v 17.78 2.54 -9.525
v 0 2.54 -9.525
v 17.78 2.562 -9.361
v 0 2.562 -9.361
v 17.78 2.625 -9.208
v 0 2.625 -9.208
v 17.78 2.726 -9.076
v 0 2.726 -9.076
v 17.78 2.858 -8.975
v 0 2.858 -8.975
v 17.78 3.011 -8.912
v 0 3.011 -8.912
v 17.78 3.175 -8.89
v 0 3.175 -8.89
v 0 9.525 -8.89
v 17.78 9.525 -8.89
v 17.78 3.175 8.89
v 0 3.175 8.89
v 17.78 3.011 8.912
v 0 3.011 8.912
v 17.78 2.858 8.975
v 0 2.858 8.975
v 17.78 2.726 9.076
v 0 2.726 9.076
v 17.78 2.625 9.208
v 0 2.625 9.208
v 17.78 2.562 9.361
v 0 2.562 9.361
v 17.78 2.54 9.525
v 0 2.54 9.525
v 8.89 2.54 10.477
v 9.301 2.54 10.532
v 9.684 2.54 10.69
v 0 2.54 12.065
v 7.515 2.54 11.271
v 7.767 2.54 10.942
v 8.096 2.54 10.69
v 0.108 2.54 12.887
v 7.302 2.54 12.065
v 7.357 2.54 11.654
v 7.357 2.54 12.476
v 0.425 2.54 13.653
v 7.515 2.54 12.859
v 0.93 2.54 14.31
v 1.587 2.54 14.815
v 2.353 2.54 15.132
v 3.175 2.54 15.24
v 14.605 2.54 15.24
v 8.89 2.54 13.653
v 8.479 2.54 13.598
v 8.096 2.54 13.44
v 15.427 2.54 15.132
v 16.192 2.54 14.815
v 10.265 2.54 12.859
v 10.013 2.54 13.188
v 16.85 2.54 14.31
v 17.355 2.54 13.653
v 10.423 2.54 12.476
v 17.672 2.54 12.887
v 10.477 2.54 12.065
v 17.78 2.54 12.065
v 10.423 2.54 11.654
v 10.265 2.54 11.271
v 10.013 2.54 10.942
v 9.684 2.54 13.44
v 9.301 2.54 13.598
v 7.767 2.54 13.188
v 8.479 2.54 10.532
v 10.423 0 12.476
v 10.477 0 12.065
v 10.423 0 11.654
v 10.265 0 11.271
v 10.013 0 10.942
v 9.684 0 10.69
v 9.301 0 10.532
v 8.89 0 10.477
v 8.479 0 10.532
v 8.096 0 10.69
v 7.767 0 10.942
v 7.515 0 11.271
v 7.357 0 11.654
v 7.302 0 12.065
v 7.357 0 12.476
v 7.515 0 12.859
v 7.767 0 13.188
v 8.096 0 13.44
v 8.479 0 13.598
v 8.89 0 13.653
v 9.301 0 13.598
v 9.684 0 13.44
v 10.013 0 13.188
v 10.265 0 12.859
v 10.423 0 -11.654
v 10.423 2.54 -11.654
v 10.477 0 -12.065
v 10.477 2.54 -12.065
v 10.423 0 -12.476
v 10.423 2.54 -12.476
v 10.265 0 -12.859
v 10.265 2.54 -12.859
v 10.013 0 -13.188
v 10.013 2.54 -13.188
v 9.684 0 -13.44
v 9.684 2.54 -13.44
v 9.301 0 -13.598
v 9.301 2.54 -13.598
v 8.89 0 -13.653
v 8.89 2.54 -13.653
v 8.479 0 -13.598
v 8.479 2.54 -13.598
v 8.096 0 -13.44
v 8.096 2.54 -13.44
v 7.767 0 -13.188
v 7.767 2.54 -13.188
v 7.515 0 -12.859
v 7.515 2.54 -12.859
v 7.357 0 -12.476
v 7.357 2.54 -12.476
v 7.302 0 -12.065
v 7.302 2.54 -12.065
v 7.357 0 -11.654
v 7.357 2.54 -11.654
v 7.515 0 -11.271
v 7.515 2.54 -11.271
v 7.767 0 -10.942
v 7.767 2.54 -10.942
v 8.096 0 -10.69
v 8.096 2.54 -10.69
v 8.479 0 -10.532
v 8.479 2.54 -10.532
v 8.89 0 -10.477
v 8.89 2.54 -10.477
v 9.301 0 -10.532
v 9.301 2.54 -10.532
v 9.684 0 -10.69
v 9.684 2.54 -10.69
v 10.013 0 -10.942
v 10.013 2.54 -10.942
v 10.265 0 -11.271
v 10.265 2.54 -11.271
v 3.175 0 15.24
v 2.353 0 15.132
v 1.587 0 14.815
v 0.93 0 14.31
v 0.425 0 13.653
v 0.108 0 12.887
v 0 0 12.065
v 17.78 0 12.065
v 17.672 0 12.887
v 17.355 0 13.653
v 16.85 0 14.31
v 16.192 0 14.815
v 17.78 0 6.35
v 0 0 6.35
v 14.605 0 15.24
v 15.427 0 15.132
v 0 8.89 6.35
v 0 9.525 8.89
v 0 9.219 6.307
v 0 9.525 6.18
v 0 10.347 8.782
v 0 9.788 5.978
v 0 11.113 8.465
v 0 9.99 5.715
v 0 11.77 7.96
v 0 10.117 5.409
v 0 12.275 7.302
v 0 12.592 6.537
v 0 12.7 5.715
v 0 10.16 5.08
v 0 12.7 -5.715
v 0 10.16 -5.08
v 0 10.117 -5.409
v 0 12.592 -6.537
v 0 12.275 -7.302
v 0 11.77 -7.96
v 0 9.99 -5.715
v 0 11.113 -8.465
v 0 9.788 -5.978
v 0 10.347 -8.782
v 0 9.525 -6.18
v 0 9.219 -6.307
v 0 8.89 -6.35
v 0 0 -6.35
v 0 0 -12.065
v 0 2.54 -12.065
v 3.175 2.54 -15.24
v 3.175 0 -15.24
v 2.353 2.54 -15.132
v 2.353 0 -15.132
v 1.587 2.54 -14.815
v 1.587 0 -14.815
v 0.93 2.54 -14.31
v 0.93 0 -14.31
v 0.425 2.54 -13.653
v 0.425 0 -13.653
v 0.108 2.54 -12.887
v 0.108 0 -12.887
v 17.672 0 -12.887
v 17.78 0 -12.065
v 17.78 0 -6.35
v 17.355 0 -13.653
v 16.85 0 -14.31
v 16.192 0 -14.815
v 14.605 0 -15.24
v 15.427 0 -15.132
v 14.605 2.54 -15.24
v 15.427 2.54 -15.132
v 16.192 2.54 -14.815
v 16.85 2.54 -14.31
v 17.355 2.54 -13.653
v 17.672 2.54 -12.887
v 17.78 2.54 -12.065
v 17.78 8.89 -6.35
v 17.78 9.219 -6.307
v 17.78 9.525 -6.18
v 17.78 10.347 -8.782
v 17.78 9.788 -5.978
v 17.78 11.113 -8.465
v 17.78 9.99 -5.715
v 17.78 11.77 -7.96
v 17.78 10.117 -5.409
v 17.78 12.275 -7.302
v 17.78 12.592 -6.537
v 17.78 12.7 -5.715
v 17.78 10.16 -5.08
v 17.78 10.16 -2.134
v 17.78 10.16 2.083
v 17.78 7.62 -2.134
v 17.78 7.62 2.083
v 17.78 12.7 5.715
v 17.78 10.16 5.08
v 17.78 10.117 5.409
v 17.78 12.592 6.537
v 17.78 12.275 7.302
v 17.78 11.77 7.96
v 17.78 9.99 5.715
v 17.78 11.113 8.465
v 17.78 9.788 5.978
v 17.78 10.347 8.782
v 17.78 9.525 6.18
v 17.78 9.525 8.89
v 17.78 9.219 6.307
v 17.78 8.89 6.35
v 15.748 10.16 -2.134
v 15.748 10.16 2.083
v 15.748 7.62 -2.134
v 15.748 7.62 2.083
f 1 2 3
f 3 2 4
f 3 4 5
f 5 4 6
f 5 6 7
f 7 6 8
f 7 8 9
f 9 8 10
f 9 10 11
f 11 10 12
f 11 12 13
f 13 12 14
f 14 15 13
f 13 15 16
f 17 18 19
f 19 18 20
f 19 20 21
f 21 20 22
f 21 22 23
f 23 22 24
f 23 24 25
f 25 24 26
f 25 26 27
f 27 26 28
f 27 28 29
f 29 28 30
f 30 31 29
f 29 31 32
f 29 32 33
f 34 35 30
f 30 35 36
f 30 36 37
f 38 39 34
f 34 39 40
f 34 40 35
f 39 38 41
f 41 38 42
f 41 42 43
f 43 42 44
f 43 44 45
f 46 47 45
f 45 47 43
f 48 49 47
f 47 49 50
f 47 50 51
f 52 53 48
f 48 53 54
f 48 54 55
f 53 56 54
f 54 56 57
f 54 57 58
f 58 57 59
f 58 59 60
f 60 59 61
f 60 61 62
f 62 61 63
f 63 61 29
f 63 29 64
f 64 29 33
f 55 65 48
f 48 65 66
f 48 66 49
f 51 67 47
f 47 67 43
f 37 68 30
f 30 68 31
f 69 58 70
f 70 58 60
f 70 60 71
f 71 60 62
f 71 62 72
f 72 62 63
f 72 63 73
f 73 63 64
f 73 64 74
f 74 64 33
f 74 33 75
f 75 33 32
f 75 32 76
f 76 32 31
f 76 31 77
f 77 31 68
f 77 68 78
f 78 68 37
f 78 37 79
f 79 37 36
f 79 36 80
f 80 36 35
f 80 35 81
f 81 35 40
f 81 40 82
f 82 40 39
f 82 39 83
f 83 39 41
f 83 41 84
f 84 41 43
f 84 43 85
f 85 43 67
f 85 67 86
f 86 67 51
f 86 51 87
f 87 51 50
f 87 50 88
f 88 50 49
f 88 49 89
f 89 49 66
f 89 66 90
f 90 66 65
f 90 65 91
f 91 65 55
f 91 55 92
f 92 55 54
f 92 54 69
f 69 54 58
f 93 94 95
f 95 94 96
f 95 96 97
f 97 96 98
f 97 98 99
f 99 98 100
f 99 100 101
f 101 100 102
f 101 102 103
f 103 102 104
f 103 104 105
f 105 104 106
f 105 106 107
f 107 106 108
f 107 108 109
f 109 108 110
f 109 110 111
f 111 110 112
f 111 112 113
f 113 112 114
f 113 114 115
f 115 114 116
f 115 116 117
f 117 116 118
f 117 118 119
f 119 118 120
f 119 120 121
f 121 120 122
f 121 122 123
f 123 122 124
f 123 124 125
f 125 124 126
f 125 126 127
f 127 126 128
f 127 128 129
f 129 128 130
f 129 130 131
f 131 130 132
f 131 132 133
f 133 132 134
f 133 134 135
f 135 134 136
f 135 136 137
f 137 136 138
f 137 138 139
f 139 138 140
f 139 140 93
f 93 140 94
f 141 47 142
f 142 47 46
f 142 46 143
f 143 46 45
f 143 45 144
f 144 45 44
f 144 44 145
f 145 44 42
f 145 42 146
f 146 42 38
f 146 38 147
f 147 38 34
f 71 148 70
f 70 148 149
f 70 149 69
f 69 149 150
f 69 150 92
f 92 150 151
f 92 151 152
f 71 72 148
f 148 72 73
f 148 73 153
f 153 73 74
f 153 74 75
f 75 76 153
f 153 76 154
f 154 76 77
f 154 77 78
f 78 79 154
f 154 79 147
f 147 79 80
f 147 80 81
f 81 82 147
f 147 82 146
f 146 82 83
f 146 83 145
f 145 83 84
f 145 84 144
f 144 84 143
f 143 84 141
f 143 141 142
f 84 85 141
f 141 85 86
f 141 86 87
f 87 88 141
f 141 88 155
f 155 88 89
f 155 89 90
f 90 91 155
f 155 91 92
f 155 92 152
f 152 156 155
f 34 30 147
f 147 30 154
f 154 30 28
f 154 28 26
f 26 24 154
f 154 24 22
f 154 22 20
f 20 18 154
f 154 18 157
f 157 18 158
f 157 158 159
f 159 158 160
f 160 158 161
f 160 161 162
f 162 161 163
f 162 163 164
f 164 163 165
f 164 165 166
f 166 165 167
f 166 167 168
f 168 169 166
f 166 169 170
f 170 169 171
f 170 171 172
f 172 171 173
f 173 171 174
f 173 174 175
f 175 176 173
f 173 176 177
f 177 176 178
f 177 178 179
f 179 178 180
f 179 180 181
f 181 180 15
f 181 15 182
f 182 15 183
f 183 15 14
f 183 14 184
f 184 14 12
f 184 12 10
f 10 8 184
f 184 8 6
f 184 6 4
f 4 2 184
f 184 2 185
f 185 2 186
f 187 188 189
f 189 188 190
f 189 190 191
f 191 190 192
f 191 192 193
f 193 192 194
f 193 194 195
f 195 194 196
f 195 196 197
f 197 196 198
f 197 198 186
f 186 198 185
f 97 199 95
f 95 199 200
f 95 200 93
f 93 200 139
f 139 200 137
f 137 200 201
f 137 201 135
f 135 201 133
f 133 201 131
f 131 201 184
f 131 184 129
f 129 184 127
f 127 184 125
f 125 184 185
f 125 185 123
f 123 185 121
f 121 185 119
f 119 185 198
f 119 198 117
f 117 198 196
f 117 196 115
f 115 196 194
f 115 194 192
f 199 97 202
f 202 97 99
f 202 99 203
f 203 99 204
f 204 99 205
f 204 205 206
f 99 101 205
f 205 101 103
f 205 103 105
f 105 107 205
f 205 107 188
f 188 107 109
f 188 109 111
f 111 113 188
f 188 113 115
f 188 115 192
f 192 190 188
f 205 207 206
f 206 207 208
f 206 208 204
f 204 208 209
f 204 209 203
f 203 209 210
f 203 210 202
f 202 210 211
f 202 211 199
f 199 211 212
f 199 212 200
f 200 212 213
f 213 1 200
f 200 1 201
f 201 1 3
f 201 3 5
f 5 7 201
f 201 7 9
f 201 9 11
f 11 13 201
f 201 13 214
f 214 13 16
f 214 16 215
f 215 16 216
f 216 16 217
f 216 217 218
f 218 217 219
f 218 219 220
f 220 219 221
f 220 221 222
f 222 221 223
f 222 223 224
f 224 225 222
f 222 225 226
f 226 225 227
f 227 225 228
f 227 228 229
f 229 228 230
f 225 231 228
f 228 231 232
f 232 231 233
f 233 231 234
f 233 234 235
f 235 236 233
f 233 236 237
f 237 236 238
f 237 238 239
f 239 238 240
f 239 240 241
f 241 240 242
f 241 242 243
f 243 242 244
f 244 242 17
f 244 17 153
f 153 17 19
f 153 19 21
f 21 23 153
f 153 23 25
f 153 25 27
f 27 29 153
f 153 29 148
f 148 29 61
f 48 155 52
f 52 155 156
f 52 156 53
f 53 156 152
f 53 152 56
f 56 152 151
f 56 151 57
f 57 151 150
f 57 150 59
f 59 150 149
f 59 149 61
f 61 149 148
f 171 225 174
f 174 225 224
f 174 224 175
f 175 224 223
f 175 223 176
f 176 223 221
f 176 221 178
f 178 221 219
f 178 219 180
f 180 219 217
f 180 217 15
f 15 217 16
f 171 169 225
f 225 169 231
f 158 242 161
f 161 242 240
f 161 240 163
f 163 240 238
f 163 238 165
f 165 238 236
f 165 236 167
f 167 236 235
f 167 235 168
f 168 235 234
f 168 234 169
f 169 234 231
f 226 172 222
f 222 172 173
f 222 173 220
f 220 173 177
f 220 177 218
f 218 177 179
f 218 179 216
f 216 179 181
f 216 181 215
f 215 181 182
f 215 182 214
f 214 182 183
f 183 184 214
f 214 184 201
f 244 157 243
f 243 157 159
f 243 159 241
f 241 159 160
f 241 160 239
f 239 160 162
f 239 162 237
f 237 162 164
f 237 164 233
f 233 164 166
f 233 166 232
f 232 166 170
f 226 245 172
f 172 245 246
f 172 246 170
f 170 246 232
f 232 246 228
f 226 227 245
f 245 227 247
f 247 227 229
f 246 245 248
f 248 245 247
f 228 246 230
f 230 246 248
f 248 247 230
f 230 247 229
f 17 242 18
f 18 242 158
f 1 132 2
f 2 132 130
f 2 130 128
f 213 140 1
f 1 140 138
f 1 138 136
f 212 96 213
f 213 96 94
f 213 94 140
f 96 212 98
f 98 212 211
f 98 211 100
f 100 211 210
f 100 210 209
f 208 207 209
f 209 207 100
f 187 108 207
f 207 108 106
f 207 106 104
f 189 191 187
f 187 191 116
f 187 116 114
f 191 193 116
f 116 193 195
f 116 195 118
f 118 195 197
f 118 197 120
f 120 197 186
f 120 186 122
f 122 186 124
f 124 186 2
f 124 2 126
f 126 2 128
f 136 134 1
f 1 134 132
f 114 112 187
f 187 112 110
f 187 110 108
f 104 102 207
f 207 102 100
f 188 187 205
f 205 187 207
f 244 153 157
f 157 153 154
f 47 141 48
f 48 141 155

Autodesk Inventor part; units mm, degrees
ref_plane "YZ Plane" through (0, 0, 0) normal (1, 0, 0) x (0, 1, 0)
ref_plane "XZ Plane" through (0, 0, 0) normal (0, 1, 0) x (-1, 0, 0)
ref_plane "XY Plane" through (0, 0, 0) normal (0, 0, 1) x (1, 0, 0)
sketch "Sketch1" plane through (0, 0, 0) normal (1, 0, 0) x (0, 1, 0)
  line L0 (0, 15.24) -> (2.54, 15.24)
  line L1 (2.54, 15.24) -> (2.54, 8.89)
  line L2 (2.54, 8.89) -> (12.7, 8.89)
  line L3 (12.7, 8.89) -> (12.7, -8.89)
  line L4 (12.7, -8.89) -> (2.54, -8.89)
  line L5 (2.54, -8.89) -> (2.54, -15.24)
  line L6 (0, 15.24) -> (0, 6.35)
  line L7 (0, 6.35) -> (10.16, 6.35)
  line L8 (10.16, 6.35) -> (10.16, -6.35)
  line L9 (10.16, -6.35) -> (0, -6.35)
  line L10 (0, -6.35) -> (0, -15.24)
  line L11 (0, -15.24) -> (2.54, -15.24)
  point P0 (0, 0)
  dimension "d0" = 12.7
  dimension "d1" = 10.16
  dimension "d2" = 12.7
  dimension "d3" = 17.78
  dimension "d4" = 2.54
  dimension "d5" = 6.35
  dimension "d6" = 2.54
  dimension "d7" = 8.89
  dimension "d8" = 8.89
extrude "Extrusion1" add sketch "Sketch1" along normal blind 17.78
sketch "Sketch2" plane through (0, 10.16, -6.35) normal (0, -1, 0) x (1, 0, 0)
  line L0 (17.78, 8.4328) -> (15.748, 8.4328)
  line L1 (15.748, 8.4328) -> (15.748, 4.2164)
  line L2 (15.748, 4.2164) -> (17.78, 4.2164)
  line L3 (17.78, 4.2164) -> (17.78, 8.4328)
  line L4 (17.78, 12.7) -> (17.78, 0) projected
  line L5 (0, 0) -> (17.78, 0) projected
  point P0 (0, 6.35)
  dimension "d11" = 2.032
  dimension "d12" = 0
  dimension "d13" = 4.2164
  dimension "d14" = 4.2164
extrude "Extrusion2" add sketch "Sketch2" along normal blind 2.54
fillet "Fillet1" radius 1.27 2 edges at (8.89, 10.16, 6.35) (8.89, 10.16, -6.35)
fillet "Fillet2" radius 3.175 2 edges at (8.89, 12.7, 8.89) (8.89, 12.7, -8.89)
sketch "Sketch3" plane through (0, 2.54, 15.24) normal (0, 1, 0) x (1, 0, 0)
  circle A0 centre (8.89, 3.175) radius 1.5875
  circle A1 centre (8.89, 27.305) radius 1.5875
  line L0 (0, 24.13) -> (0, 30.48) projected
  line L1 (0, 0) -> (0, 6.35) projected
  line L2 (0, 0) -> (17.78, 0) projected
  line L3 (0, 30.48) -> (17.78, 30.48) projected
  point P0 (0, 15.24)
  dimension "d19" = 3.175
  dimension "d20" = 3.175
  dimension "d21" = 8.89
  dimension "d22" = 8.89
  dimension "d23" = 3.175
  dimension "d24" = 3.175
fillet "Fillet3" radius 3.175 4 edges at (17.78, 1.27, 15.24) (17.78, 1.27, -15.24) (0, 1.27, -15.24) (0, 1.27, 15.24)
extrude "Extrusion3" cut sketch "Sketch3" against normal blind 6.985
fillet "Fillet4" radius 0.635 2 edges at (8.89, 2.54, 8.89) (8.89, 2.54, -8.89)
properties part number "MotorCap"
